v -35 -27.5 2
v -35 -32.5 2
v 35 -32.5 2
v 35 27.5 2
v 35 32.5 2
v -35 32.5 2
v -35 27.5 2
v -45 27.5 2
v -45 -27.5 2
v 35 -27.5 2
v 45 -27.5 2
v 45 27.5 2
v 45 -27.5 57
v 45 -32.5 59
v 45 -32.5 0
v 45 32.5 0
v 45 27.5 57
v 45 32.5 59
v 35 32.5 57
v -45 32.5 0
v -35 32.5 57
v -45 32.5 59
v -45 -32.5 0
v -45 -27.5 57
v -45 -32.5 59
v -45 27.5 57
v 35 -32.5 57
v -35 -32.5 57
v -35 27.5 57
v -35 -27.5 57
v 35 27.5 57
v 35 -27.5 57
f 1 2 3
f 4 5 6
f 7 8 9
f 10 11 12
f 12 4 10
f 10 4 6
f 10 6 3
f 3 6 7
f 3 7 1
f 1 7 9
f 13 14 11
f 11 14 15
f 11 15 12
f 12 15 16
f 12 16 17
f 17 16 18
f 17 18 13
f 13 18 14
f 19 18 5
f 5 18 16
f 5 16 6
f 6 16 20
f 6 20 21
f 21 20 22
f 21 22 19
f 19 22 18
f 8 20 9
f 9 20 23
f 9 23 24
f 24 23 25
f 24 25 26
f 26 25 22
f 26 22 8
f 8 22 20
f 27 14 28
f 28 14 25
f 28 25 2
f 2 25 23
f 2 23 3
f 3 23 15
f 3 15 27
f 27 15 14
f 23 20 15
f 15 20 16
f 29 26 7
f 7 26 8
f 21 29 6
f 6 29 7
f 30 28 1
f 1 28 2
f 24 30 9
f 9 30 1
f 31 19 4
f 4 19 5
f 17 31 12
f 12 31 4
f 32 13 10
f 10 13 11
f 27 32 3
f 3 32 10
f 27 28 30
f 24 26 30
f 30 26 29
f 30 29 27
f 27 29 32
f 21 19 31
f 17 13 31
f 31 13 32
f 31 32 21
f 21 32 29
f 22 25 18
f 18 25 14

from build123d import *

# Parameters (mm, degrees)
SKETCH1_W                                  = 90
SKETCH1_H                                  = 65
BOSS_EXTRUDE1_DEPTH                        = 2
SKETCH2_W                                  = 10
SKETCH2_H                                  = 5
BOSS_EXTRUDE2_DEPTH                        = 55
MIRROR1_AT_THE_SECOND_PLANE_COPY_1_SKETC_W = 10
MIRROR1_AT_THE_SECOND_PLANE_COPY_1_SKETC_H = 5
MIRROR1_AT_THE_SECOND_PLANE_COPY_1_DEPTH   = 55
SKETCH3_W                                  = 90
SKETCH3_H                                  = 65
BOSS_EXTRUDE3_DEPTH                        = 2


with BuildPart() as part:
    # Sketch1 → Boss-Extrude1 (new body)
    with BuildSketch(Plane.XY):
        Rectangle(SKETCH1_W, SKETCH1_H)
    extrude(amount=BOSS_EXTRUDE1_DEPTH)

    # Sketch2 → Boss-Extrude2 (add)
    with BuildSketch(Plane.XY.offset(2)):
        with Locations((-40, 30)):
            Rectangle(SKETCH2_W, SKETCH2_H)
    boss_extrude2 = extrude(amount=BOSS_EXTRUDE2_DEPTH)

    # Mirror1: Boss-Extrude2 across plane
    add(boss_extrude2.mirror(Plane(origin=(0, 0, 0), x_dir=(0, 0, 1), z_dir=(1, 0, 0))))

    # Mirror1 at the second plane: Boss-Extrude2 across plane
    add(boss_extrude2.mirror(Plane.ZX))

    # Mirror1 at the second plane copy 1 sketc → Mirror1 at the second plane copy 1 (add)
    with BuildSketch(Plane(origin=(0, 0, 2), x_dir=(-1, 0, 0), z_dir=(0, 0, 1))):
        with Locations((-40, 30)):
            Rectangle(MIRROR1_AT_THE_SECOND_PLANE_COPY_1_SKETC_W, MIRROR1_AT_THE_SECOND_PLANE_COPY_1_SKETC_H)
    extrude(amount=MIRROR1_AT_THE_SECOND_PLANE_COPY_1_DEPTH)

    # Sketch3 → Boss-Extrude3 (add)
    with BuildSketch(Plane.XY.offset(57)):
        Rectangle(SKETCH3_W, SKETCH3_H)
    extrude(amount=BOSS_EXTRUDE3_DEPTH)


solid = part.part
